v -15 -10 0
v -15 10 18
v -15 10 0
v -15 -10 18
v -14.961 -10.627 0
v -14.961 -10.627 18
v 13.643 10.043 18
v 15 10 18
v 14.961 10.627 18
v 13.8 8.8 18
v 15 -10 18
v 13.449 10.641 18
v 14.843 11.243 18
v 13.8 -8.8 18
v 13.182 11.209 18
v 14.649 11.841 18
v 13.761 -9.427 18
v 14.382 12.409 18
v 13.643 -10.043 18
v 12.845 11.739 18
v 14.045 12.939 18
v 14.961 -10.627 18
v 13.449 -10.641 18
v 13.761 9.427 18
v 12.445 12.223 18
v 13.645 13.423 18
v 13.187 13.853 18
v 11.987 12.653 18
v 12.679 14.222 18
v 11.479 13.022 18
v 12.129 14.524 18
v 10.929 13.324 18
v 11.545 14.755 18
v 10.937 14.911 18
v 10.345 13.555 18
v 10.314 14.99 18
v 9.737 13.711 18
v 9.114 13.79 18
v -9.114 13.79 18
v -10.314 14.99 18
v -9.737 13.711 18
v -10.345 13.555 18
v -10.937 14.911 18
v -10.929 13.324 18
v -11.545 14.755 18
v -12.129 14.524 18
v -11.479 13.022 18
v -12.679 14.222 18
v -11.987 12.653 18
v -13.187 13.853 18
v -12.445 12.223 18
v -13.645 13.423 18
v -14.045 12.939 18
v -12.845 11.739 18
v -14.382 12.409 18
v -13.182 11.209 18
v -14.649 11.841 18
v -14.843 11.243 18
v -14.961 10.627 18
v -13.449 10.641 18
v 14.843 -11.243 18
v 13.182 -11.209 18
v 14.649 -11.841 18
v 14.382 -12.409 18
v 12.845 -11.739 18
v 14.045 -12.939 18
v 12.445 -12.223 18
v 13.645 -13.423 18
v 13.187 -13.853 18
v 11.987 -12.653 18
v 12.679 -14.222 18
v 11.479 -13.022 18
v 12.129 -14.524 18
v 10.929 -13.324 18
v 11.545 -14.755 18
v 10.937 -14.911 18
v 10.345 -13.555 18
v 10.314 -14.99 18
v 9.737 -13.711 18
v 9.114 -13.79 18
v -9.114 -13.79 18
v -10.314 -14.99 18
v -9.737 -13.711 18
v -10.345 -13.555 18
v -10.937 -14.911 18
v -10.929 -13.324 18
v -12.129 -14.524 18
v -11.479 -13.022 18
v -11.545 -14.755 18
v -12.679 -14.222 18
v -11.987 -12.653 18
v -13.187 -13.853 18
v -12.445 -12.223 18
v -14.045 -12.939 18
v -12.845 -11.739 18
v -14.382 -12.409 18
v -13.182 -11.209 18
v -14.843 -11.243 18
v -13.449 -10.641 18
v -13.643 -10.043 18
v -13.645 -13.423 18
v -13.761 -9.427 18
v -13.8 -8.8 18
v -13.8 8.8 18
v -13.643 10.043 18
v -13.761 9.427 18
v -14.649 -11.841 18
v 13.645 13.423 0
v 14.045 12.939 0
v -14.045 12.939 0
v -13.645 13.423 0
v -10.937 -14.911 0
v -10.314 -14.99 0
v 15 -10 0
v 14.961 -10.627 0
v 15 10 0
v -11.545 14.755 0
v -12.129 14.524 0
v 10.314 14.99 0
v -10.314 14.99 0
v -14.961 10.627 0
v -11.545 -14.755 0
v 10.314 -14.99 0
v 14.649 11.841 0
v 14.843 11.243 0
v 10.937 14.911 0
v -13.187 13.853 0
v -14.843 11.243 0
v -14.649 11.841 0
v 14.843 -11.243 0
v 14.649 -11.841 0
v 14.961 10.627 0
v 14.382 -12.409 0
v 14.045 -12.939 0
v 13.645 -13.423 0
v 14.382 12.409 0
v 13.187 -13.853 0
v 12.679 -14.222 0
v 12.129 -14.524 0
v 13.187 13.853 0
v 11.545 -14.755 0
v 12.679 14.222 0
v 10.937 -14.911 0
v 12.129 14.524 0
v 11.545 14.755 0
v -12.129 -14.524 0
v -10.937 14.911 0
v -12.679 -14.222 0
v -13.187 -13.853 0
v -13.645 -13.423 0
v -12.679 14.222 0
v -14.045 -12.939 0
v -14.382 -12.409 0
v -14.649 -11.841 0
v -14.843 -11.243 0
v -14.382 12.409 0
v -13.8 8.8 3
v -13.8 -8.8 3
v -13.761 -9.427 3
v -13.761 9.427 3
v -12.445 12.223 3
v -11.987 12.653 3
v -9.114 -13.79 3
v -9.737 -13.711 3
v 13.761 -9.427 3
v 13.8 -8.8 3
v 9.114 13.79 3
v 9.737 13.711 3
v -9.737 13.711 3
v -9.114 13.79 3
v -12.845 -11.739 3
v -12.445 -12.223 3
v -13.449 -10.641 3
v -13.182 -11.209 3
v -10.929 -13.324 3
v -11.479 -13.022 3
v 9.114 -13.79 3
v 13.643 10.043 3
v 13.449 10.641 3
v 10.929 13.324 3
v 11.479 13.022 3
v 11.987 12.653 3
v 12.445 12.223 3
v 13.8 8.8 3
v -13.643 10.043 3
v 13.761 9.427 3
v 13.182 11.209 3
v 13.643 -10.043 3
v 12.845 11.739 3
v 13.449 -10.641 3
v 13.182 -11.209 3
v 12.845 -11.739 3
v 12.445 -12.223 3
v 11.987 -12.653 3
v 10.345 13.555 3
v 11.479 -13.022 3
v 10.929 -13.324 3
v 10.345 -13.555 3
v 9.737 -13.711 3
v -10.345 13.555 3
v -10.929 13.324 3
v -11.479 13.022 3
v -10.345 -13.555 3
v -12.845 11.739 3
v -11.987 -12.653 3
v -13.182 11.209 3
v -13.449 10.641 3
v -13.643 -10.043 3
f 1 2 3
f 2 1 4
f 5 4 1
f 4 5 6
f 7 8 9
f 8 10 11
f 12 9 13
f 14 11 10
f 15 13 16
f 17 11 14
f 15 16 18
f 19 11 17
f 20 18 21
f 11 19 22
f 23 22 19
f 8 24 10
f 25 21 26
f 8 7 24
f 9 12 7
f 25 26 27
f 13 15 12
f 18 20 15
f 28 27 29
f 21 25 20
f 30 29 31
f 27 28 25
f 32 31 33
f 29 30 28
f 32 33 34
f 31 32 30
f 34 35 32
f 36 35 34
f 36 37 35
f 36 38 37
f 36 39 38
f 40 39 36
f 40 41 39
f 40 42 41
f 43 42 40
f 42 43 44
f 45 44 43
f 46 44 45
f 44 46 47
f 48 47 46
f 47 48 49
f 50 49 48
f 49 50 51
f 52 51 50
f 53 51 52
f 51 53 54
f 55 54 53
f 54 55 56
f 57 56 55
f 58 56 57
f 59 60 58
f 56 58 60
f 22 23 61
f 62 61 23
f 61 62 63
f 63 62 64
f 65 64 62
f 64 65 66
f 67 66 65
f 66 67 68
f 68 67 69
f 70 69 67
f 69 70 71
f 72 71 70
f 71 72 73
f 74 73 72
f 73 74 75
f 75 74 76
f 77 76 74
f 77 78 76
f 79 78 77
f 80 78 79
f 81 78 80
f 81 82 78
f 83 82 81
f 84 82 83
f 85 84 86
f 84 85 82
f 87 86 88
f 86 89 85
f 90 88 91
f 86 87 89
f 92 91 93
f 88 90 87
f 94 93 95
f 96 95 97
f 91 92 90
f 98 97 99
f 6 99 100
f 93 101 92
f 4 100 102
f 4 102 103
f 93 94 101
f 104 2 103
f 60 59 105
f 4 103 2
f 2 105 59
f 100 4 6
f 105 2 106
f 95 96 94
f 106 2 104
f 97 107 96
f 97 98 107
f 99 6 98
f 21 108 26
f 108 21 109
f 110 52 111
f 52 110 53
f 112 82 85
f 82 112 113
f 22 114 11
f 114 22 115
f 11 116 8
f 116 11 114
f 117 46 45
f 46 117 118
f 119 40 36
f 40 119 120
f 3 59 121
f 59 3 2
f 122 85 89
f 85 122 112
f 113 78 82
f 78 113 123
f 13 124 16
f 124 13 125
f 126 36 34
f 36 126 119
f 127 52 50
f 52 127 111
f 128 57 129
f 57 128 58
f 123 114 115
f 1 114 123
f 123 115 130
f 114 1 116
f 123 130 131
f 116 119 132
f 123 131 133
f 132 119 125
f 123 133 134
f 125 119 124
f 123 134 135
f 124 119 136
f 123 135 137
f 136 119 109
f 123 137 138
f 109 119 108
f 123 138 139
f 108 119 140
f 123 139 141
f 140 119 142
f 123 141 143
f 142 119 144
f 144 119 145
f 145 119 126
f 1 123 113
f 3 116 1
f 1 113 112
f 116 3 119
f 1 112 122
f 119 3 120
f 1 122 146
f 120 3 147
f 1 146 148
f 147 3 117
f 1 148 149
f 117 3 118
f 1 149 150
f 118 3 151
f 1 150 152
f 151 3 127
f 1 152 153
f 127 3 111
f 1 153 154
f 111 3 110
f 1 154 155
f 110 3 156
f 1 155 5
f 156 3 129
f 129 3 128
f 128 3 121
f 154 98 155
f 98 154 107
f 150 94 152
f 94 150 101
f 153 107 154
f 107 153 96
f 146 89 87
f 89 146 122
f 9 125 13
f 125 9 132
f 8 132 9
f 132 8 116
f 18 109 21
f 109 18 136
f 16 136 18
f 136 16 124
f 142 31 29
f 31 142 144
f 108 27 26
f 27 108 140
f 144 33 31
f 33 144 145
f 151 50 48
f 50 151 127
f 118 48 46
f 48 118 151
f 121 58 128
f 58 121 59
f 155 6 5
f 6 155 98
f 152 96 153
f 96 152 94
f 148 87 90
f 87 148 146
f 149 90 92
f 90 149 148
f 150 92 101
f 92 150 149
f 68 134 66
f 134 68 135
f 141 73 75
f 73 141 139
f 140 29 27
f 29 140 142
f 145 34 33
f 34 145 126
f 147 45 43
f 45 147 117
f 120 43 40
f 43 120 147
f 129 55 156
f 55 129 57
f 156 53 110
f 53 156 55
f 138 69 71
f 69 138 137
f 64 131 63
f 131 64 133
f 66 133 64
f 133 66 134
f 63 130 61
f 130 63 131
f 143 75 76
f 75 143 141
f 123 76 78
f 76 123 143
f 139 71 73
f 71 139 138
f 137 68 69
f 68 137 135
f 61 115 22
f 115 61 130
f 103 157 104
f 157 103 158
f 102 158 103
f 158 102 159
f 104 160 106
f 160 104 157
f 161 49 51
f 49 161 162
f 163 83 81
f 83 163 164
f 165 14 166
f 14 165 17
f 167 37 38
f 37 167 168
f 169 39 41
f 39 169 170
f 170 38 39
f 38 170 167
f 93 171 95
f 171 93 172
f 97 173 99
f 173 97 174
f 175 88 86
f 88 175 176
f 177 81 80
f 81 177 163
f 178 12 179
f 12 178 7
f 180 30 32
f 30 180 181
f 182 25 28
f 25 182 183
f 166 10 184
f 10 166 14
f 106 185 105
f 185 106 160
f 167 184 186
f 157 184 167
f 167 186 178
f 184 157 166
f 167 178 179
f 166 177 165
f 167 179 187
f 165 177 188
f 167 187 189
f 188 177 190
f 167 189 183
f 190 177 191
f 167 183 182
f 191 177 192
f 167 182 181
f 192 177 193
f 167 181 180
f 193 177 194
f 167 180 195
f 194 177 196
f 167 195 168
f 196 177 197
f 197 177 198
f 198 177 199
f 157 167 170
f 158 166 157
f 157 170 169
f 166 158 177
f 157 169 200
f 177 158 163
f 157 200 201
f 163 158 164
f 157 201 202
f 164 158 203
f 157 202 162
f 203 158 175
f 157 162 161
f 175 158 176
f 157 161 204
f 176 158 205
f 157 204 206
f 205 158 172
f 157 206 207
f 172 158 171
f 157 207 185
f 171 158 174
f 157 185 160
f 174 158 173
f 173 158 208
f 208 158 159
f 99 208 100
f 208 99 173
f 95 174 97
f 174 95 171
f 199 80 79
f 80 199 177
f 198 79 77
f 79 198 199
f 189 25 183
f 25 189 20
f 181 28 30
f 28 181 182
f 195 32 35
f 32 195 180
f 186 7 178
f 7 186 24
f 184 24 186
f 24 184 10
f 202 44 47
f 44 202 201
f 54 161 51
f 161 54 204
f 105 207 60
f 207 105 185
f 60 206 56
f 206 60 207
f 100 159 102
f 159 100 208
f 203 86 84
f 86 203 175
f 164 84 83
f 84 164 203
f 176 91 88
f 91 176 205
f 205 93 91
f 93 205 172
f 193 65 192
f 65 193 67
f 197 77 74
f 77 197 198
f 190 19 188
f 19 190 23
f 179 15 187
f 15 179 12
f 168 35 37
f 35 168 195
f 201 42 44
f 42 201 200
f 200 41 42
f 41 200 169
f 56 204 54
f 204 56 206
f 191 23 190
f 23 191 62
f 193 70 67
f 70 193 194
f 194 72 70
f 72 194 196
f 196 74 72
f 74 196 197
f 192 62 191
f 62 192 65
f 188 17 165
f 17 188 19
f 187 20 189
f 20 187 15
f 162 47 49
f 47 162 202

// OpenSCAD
$fn = 50;


difference() {
	union() {
		hull() {
			translate(v = [-10.0000000000, 10.0000000000, 0]) {
				cylinder(h = 18, r = 5);
			}
			translate(v = [10.0000000000, 10.0000000000, 0]) {
				cylinder(h = 18, r = 5);
			}
			translate(v = [-10.0000000000, -10.0000000000, 0]) {
				cylinder(h = 18, r = 5);
			}
			translate(v = [10.0000000000, -10.0000000000, 0]) {
				cylinder(h = 18, r = 5);
			}
		}
	}
	union() {
		translate(v = [0, 0, 3]) {
			#hull() {
				translate(v = [-8.8000000000, 8.8000000000, 0]) {
					cylinder(h = 15, r = 5);
				}
				translate(v = [8.8000000000, 8.8000000000, 0]) {
					cylinder(h = 15, r = 5);
				}
				translate(v = [-8.8000000000, -8.8000000000, 0]) {
					cylinder(h = 15, r = 5);
				}
				translate(v = [8.8000000000, -8.8000000000, 0]) {
					cylinder(h = 15, r = 5);
				}
			}
		}
	}
}
